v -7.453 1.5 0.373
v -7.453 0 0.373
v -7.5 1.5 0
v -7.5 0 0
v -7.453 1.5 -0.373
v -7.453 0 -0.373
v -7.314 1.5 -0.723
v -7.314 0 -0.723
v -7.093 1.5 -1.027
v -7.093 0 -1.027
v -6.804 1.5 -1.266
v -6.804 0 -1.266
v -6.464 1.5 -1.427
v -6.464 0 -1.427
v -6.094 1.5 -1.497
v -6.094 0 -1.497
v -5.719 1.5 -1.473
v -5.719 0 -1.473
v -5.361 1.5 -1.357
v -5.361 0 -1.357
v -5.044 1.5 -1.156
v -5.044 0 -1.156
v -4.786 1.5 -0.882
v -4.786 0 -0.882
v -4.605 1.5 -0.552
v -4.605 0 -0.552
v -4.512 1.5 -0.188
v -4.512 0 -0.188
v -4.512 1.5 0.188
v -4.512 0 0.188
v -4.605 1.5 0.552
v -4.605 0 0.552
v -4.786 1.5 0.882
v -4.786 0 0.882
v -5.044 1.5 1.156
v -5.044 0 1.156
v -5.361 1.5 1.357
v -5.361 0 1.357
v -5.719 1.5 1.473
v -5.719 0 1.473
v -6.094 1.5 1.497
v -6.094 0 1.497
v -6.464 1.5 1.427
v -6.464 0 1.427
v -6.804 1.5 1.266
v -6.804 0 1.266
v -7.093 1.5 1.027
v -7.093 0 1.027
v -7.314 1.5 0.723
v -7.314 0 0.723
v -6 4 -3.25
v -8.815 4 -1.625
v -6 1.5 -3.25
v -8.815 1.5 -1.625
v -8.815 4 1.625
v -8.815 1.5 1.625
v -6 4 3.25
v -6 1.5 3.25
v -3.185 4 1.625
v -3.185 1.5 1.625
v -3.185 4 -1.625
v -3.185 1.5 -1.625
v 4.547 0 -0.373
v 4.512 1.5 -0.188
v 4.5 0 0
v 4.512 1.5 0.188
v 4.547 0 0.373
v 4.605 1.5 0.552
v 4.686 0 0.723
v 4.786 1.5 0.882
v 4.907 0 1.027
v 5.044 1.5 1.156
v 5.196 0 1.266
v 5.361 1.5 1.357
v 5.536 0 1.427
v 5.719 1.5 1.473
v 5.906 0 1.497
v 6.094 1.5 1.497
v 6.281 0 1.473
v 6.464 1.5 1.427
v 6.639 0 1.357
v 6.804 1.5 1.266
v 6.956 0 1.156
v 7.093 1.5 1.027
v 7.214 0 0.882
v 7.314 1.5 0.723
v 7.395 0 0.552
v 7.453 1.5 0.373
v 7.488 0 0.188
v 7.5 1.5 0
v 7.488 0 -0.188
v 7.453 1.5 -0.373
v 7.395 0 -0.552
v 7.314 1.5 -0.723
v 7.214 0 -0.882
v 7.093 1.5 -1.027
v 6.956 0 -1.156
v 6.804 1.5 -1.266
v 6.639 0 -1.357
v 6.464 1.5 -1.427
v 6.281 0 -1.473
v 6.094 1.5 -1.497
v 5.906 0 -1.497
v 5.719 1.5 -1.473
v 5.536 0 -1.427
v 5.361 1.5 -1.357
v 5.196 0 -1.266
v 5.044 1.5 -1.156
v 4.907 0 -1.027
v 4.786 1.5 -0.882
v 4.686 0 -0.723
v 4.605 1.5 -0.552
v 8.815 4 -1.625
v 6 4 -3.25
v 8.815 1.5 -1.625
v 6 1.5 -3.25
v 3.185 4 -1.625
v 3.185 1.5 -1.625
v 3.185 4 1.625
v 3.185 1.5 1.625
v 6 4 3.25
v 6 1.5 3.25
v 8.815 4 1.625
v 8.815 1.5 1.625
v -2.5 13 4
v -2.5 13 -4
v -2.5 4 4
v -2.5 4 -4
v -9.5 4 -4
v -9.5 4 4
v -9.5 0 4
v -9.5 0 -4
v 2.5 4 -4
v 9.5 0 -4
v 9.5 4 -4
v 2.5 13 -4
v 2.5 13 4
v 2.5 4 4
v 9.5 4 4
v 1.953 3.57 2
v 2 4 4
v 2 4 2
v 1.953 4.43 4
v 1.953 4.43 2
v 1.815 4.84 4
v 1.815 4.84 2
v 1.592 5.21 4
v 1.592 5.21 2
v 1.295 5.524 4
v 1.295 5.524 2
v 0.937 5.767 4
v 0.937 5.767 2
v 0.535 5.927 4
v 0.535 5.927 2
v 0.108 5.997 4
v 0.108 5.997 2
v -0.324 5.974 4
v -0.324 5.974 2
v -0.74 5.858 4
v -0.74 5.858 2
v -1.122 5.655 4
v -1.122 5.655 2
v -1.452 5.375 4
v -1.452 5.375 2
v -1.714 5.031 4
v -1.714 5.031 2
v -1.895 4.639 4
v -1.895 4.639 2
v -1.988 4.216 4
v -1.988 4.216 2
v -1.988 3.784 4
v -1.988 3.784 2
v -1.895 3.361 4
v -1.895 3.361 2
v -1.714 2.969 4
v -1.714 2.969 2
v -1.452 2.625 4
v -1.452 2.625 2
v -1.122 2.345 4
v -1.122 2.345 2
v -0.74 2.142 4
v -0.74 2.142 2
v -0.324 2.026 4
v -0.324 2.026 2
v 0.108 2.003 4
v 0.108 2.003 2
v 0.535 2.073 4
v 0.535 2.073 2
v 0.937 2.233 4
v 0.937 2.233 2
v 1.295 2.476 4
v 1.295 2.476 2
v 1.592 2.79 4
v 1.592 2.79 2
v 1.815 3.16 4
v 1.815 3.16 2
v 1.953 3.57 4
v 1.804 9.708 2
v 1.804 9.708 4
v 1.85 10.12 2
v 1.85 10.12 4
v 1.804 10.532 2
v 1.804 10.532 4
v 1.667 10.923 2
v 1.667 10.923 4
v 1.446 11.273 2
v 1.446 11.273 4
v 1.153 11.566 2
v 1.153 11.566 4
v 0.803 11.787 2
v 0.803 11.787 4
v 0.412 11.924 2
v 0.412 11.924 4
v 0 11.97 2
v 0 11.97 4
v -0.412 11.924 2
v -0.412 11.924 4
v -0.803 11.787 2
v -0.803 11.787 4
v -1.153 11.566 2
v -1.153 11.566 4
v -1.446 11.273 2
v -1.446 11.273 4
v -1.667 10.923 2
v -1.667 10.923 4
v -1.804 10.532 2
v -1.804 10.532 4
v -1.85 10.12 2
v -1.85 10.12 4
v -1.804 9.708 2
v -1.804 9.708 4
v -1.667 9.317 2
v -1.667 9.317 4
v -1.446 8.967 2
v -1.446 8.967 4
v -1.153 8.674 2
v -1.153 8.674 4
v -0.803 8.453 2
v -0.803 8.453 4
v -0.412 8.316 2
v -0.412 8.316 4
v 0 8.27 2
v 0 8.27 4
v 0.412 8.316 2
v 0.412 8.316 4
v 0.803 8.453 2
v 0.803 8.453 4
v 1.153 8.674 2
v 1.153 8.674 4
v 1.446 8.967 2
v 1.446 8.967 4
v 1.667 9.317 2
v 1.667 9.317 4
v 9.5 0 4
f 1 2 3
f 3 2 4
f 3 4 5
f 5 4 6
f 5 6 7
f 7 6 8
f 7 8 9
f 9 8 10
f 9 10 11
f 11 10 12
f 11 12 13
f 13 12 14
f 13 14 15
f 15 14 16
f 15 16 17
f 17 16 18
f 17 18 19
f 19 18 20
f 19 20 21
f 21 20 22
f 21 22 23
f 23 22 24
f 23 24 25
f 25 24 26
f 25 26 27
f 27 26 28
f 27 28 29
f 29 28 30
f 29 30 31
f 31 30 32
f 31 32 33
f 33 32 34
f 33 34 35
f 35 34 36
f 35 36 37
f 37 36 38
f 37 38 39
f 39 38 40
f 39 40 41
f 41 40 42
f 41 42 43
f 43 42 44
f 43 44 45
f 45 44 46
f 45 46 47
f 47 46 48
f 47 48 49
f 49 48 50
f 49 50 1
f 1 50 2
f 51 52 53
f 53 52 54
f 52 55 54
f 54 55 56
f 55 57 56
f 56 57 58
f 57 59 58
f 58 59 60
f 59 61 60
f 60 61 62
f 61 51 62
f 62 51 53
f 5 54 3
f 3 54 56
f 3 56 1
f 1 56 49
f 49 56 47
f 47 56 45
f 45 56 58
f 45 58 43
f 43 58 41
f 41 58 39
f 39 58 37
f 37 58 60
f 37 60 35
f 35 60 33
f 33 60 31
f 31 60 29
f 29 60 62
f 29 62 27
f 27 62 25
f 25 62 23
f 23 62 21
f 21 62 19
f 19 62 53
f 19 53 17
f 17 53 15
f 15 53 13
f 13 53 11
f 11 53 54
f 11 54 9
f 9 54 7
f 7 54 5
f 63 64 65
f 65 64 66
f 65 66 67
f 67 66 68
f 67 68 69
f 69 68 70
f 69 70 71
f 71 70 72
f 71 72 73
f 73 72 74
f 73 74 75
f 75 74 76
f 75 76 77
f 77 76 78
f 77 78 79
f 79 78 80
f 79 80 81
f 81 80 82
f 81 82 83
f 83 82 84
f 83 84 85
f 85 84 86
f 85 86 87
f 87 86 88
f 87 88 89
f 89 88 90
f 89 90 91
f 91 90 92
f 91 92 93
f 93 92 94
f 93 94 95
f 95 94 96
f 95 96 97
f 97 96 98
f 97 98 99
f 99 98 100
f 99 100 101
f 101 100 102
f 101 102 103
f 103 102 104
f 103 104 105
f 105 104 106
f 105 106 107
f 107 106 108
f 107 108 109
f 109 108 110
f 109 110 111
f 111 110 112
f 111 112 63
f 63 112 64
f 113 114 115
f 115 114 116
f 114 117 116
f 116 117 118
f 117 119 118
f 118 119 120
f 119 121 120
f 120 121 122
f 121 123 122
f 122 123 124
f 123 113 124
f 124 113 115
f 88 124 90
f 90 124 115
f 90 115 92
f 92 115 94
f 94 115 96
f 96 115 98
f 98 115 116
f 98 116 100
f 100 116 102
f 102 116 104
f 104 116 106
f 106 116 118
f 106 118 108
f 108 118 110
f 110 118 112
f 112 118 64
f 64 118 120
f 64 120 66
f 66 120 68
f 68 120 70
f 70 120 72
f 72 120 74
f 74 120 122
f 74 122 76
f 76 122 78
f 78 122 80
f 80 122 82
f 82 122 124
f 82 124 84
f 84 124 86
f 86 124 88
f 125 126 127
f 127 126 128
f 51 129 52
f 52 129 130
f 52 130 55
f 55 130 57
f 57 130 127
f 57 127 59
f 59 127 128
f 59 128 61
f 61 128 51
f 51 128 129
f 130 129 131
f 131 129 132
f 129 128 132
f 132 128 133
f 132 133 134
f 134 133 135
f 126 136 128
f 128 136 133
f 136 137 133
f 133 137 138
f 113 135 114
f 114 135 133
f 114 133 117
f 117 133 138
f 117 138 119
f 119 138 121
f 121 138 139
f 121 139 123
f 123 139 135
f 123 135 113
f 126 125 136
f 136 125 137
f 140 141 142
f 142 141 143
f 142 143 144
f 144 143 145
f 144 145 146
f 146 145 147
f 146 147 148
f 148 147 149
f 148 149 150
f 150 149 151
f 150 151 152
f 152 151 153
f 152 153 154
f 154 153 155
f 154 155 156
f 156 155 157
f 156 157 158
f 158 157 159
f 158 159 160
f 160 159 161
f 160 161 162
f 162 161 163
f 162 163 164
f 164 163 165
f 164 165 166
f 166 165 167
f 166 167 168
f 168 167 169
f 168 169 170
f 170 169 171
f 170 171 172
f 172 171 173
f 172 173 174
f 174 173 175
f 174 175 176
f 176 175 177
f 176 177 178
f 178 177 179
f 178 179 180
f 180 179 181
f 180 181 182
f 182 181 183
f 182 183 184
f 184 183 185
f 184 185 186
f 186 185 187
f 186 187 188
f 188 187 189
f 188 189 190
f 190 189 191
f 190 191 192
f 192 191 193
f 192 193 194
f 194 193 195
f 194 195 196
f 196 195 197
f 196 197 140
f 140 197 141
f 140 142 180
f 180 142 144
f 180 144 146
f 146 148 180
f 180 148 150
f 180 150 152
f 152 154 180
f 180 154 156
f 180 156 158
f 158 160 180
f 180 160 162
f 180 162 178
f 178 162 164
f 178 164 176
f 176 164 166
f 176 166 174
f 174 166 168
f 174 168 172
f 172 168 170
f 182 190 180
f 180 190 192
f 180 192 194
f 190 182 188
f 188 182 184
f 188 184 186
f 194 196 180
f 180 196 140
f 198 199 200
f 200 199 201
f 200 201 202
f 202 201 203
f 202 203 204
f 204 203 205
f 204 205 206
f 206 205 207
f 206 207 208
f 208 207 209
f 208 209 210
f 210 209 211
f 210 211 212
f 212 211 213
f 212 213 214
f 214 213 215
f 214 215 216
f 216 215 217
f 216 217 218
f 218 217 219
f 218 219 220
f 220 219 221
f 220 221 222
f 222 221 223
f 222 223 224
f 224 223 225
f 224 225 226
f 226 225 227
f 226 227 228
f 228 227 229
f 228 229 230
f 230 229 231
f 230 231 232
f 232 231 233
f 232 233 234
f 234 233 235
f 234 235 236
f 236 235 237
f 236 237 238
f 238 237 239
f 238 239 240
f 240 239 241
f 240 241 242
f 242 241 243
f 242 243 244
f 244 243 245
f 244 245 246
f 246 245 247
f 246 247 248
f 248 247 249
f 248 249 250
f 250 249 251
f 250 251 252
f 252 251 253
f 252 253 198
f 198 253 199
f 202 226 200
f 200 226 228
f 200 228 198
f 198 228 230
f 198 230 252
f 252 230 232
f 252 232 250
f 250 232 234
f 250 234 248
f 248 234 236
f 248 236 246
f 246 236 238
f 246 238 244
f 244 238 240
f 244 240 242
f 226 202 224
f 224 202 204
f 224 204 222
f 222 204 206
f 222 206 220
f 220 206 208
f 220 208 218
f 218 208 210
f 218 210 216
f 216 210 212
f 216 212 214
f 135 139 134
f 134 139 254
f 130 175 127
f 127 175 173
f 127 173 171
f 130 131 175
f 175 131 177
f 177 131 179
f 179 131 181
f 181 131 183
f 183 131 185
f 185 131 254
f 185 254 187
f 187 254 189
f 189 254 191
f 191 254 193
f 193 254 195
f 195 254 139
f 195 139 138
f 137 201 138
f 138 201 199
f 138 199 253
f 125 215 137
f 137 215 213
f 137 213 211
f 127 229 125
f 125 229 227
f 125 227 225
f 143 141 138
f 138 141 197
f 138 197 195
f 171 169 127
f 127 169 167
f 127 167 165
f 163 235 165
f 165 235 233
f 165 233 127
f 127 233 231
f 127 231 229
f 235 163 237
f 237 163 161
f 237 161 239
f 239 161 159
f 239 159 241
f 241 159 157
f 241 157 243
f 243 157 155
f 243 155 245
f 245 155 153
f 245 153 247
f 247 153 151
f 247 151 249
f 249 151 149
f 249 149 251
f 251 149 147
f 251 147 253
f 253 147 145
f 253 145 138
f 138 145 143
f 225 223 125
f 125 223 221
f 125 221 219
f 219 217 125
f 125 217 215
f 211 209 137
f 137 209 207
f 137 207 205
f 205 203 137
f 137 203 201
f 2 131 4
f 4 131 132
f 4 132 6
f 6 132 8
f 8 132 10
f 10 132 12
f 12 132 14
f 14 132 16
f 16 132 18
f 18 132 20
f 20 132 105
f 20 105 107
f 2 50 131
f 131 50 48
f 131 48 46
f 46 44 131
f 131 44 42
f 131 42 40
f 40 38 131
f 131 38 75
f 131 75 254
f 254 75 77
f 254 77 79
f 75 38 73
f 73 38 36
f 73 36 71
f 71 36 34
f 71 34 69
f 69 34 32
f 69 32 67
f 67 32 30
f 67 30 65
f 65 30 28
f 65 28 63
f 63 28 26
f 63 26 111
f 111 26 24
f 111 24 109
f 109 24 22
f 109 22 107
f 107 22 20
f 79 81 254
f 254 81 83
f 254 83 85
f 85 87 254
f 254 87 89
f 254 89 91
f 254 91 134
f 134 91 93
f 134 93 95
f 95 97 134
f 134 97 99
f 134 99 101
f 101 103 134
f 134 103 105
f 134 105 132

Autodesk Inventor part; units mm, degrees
ref_plane "YZ Plane" through (0, 0, 0) normal (1, 0, 0) x (0, 1, 0)
ref_plane "XZ Plane" through (0, 0, 0) normal (0, 1, 0) x (-1, 0, 0)
ref_plane "XY Plane" through (0, 0, 0) normal (0, 0, 1) x (1, 0, 0)
sketch "Sketch1" plane through (0, 0, 0) normal (0, 1, 0) x (-1, 0, 0)
  line L0 (13.3, 0) -> (-13.3, 0) projected
  line L1 (0, -6.3) -> (0, 6.3) projected
  line L2 (-9.5, 4) -> (9.5, 4)
  line L3 (9.5, 4) -> (9.5, -4)
  line L4 (9.5, -4) -> (-9.5, -4)
  line L5 (-9.5, -4) -> (-9.5, 4)
  line L6 (-9.5, 4) -> (9.5, -4) construction
  line L7 (9.5, 4) -> (-9.5, -4) construction
  point P0 (0, 0)
  dimension "d0" = 19
  dimension "d1" = 8
extrude "Extrusion1" add sketch "Sketch1" along normal blind 13
sketch "Sketch2" plane through (-9.5, 0, 4) normal (0, 0, 1) x (1, 0, 0)
  line L0 (19, 0) -> (0, 0) projected
  line L1 (7, 13) -> (12, 13)
  line L2 (12, 13) -> (12, 0)
  line L3 (12, 0) -> (7, 0)
  line L4 (7, 0) -> (7, 13)
  line L5 (7, 13) -> (12, 0) construction
  line L6 (12, 13) -> (7, 0) construction
  line L7 (0, 13) -> (19, 13) projected
  line L8 (0, 0) -> (0, 13) projected
  line L9 (19, 0) -> (19, 13) projected
  circle A0 centre (9.5, 10.12) radius 1.85
  circle A1 centre (9.5, 4) radius 2
  point P0 (9.5, 0)
  point P1 (9.5, 6.5)
  dimension "d6" = 7
  dimension "d7" = 3.7
  dimension "d8" = 4
  dimension "d9" = 2.5
  dimension "d10" = 2.5
  dimension "d11" = 2
  dimension "d12" = 6.12
  dimension "d19" = 2.5
extrude "Extrusion2" cut sketch "Sketch2" against normal blind 2 contours A0 | A1
sketch "Sketch3" plane through (0, 13, 0) normal (0, 1, 0) x (1, 0, 0)
  line L0 (-9.5, -4) -> (9.5, -4) projected
  line L1 (2.5, -4) -> (2.5, 4)
  line L2 (9.5, 4) -> (-9.5, 4) projected
  line L3 (9.5, -4) -> (9.5, 4) projected
  point P0 (0, 0)
  dimension "d15" = 7
extrude "Extrusion3" cut sketch "Sketch3" against normal blind 9
sketch "Sketch4" plane through (0, 4, 0) normal (0, 1, 0) x (1, 0, 0)
  line L0 (6, -3.25) -> (3.1854, -1.625)
  line L1 (3.1854, -1.625) -> (3.1854, 1.625)
  line L2 (3.1854, 1.625) -> (6, 3.25)
  line L3 (6, 3.25) -> (8.8146, 1.625)
  line L4 (8.8146, 1.625) -> (8.8146, -1.625)
  line L5 (8.8146, -1.625) -> (6, -3.25)
  line L6 (9.5, -4) -> (2.5, -4) projected
  line L7 (9.5, 4) -> (9.5, -4) projected
  line L8 (2.5, 4) -> (9.5, 4) projected
  point P0 (0, 0)
  point P1 (6, 0)
  dimension "d18" = 6.5
  dimension "d23" = 3.5
  dimension "d24" = 4
  dimension "d32" = 5.6292
  dimension "d33" = 6.5
sketch "Sketch7" plane through (0, 13, 0) normal (0, 1, 0) x (1, 0, 0)
  line L0 (-9.5, -4) -> (2.5, -4) projected
  line L1 (-2.5, -4) -> (-2.5, 4)
  line L2 (2.5, 4) -> (-9.5, 4) projected
  line L3 (-9.5, 4) -> (-9.5, -4) projected
  line L4 (-2.5, -4) -> (-9.5, -4)
  line L5 (-9.5, 4) -> (-2.5, 4)
  point P0 (0, 0)
  dimension "d25" = 7
extrude "Extrusion5" cut sketch "Sketch7" against normal blind 9
sketch "Sketch8" plane through (0, 4, 0) normal (0, 1, 0) x (1, 0, 0)
  line L0 (-3.1854, -1.625) -> (-6, -3.25)
  line L1 (-6, -3.25) -> (-8.8146, -1.625)
  line L2 (-8.8146, -1.625) -> (-8.8146, 1.625)
  line L3 (-8.8146, 1.625) -> (-6, 3.25)
  line L4 (-6, 3.25) -> (-3.1854, 1.625)
  line L5 (-3.1854, 1.625) -> (-3.1854, -1.625)
  line L6 (-2.5, 4) -> (-2.5, -4) projected
  line L7 (-9.5, -4) -> (-9.5, 4) projected
  line L8 (-9.5, 4) -> (-2.5, 4) projected
  point P0 (0, 0)
  point P1 (-6, 0)
  dimension "d28" = 6.5
  dimension "d30" = 3.5
  dimension "d31" = 4
  dimension "d34" = 5.6292
sketch "Sketch9" plane through (0, 4, 0) normal (0, 1, 0) x (1, 0, 0)
  circle A0 centre (-6, 0) radius 1.5
  line L0 (-2.5, -4) -> (-9.5, -4) projected
  line L1 (-2.5, 4) -> (-2.5, -4) projected
  point P0 (0, 0)
  dimension "d35" = 3
  dimension "d36" = 4
  dimension "d37" = 3.5
extrude "Extrusion6" cut sketch "Sketch4" against normal blind 2.5
sketch "Sketch10" plane through (0, 1.5, 0) normal (0, 1, 0) x (1, 0, 0)
  circle A0 centre (6, 0) radius 1.5
  line L0 (9.5, -4) -> (2.5, -4) projected
  line L1 (9.5, 4) -> (9.5, -4) projected
  point P0 (0, 0)
  dimension "d40" = 3
  dimension "d41" = 4
  dimension "d42" = 3.5
extrude "Extrusion7" cut sketch "Sketch10" against normal through all
extrude "Extrusion8" cut sketch "Sketch8" against normal blind 2.5
extrude "Extrusion9" cut sketch "Sketch9" against normal through all
properties part number "uchwyt_drazki_wersja_2"
